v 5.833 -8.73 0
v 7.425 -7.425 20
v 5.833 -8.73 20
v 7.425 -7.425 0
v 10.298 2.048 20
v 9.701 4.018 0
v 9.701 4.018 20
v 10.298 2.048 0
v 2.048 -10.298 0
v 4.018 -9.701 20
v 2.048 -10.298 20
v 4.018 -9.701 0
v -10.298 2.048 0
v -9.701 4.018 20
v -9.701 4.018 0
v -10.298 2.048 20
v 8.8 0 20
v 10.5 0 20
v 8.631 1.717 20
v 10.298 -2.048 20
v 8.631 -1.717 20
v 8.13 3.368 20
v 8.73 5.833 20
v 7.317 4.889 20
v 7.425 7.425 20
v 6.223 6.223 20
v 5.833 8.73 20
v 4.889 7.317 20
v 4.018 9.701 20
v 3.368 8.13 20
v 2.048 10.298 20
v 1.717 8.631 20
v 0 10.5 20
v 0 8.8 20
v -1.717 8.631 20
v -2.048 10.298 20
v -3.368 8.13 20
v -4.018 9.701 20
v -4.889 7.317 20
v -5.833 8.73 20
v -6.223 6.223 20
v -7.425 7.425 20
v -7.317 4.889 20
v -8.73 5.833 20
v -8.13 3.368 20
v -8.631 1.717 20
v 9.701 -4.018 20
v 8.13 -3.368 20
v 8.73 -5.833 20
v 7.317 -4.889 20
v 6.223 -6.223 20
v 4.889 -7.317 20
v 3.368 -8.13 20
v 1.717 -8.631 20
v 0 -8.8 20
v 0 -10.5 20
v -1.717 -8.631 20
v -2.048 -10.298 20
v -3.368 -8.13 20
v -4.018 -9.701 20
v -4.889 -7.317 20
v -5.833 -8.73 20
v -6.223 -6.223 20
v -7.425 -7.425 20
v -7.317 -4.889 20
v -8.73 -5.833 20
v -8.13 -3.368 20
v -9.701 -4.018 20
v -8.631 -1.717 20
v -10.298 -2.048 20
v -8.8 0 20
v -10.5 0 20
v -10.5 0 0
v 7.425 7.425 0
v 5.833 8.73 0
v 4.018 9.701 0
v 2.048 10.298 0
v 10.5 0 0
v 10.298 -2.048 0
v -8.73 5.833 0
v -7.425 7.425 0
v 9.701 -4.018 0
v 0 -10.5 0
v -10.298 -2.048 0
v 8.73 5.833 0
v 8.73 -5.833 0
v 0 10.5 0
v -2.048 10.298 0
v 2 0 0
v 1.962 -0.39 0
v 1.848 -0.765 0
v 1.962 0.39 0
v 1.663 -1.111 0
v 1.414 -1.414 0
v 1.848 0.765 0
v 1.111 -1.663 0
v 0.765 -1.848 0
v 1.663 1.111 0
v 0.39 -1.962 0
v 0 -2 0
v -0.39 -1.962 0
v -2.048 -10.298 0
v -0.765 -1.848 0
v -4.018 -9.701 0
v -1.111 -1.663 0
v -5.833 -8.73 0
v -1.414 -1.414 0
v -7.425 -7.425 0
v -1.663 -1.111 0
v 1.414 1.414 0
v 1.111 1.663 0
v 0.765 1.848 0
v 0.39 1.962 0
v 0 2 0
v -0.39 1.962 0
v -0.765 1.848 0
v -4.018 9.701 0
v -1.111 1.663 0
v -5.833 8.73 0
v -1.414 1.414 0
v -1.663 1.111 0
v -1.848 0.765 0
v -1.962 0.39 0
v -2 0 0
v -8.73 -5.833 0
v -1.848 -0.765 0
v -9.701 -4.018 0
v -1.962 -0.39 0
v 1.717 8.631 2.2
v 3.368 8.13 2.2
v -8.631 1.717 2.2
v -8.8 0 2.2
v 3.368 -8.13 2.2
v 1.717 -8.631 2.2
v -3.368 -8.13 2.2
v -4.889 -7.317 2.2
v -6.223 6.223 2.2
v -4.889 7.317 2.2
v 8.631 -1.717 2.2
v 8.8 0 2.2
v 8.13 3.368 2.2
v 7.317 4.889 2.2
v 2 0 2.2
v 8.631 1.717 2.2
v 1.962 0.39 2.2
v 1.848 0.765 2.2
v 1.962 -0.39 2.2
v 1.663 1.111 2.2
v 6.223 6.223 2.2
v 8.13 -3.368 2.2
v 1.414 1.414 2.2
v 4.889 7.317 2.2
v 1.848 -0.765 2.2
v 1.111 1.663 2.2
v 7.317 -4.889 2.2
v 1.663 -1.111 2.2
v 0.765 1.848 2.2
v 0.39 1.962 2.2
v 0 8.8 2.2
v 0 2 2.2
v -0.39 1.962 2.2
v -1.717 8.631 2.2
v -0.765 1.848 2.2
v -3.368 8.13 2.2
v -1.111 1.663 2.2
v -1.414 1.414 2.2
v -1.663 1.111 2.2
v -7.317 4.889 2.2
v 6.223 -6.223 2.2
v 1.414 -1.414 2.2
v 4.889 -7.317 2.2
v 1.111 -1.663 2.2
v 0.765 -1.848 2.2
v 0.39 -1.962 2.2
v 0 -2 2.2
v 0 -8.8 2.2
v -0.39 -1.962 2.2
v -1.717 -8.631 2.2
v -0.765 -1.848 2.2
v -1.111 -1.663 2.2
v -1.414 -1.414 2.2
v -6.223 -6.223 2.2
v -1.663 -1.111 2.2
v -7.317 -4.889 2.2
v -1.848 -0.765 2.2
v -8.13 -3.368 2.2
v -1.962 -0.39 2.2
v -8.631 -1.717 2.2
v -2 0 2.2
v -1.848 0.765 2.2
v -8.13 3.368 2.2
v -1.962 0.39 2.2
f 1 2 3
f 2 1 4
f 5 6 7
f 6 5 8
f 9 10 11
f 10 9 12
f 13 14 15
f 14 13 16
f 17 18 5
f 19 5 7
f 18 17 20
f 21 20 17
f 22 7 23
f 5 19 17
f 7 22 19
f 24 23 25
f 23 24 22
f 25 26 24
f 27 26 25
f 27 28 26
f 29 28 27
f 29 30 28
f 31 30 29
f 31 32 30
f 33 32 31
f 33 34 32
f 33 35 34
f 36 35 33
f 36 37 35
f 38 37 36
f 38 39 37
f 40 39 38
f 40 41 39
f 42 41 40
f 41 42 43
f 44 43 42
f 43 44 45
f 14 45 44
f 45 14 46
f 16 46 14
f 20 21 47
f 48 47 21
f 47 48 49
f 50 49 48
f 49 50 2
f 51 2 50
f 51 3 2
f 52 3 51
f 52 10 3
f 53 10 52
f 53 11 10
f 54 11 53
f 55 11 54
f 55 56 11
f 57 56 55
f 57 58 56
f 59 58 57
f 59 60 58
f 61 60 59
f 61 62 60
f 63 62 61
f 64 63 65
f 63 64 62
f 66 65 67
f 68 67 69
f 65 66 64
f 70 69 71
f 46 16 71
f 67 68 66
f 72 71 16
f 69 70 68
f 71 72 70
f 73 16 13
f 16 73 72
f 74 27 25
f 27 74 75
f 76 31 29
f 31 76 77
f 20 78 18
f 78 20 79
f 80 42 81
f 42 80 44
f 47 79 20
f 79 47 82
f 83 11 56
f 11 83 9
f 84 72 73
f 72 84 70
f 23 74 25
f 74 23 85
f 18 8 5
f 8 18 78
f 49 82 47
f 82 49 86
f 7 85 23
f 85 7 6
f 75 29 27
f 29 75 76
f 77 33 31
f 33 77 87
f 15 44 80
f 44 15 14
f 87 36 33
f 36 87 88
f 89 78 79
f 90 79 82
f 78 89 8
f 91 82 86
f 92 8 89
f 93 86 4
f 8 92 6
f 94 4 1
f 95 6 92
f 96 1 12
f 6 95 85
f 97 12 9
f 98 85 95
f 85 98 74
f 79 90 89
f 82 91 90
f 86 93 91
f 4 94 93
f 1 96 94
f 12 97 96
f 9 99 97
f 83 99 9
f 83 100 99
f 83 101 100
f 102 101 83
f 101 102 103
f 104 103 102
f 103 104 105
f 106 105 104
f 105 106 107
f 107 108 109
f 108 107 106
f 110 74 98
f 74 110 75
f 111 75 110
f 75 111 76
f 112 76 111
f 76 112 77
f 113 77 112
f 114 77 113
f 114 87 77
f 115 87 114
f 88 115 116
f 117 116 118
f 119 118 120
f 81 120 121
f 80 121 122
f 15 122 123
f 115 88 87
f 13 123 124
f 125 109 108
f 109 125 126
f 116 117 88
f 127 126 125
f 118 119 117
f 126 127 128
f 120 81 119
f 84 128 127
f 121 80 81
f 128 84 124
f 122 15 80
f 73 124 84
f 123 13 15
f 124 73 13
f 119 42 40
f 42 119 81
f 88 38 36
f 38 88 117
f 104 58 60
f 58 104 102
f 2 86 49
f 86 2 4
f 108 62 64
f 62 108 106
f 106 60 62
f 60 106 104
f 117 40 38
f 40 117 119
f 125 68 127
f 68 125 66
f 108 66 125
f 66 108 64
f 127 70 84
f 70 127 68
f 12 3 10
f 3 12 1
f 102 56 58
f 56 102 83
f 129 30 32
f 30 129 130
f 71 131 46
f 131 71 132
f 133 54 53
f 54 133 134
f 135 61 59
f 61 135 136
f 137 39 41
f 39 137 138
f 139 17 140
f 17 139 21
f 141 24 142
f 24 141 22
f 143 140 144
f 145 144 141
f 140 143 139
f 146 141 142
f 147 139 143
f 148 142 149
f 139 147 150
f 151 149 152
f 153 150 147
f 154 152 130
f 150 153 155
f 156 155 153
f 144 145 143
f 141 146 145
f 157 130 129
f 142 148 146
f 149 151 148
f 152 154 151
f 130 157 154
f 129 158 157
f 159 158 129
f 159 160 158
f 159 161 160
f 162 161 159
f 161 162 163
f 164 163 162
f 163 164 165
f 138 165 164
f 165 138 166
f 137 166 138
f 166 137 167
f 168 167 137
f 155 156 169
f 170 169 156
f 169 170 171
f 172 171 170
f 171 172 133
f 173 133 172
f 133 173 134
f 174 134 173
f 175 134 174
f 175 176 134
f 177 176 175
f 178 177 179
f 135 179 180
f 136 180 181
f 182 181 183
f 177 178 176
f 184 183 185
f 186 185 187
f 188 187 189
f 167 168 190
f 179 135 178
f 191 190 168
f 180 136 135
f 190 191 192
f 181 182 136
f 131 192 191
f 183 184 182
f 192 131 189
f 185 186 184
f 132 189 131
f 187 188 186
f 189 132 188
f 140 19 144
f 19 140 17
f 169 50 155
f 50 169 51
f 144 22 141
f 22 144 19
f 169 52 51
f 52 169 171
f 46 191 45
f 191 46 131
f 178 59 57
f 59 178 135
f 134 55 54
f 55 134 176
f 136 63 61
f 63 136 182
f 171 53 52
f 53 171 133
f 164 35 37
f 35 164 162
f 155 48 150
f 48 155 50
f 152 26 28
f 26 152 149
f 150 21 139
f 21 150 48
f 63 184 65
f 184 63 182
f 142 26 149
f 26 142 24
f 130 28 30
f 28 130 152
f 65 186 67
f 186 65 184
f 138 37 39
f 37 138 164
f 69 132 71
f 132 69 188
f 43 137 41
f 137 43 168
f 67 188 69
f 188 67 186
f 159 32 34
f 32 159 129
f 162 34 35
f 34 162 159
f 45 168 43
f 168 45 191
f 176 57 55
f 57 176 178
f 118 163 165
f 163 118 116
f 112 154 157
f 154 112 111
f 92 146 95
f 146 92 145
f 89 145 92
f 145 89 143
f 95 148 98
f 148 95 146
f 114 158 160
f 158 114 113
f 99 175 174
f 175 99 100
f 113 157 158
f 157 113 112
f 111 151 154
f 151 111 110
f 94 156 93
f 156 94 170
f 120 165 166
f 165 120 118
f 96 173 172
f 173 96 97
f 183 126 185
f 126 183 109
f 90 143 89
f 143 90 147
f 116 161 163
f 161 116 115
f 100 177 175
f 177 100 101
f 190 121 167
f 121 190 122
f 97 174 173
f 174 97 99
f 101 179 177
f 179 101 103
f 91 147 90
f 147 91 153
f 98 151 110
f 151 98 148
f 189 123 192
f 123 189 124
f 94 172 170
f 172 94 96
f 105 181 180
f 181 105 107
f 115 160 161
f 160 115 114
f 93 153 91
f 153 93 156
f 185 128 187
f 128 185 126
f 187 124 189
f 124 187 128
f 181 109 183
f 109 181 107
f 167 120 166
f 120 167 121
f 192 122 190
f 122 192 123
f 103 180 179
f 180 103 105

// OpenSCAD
$fn = 32;
e = 0.1;

body_hgt = 20.0;
body_dia = 21.0;
wall_thk = 1.7;
screw_dia = 4.0;
base_thk = 2.2;

difference() {
     cylinder( h=body_hgt, r=body_dia/2);
     translate( [0, 0, base_thk])
	  cylinder( h=body_hgt, r=(body_dia/2)-wall_thk);
     translate( [0, 0, -e])
	  cylinder( h=base_thk+2*e, r=screw_dia/2);
}
